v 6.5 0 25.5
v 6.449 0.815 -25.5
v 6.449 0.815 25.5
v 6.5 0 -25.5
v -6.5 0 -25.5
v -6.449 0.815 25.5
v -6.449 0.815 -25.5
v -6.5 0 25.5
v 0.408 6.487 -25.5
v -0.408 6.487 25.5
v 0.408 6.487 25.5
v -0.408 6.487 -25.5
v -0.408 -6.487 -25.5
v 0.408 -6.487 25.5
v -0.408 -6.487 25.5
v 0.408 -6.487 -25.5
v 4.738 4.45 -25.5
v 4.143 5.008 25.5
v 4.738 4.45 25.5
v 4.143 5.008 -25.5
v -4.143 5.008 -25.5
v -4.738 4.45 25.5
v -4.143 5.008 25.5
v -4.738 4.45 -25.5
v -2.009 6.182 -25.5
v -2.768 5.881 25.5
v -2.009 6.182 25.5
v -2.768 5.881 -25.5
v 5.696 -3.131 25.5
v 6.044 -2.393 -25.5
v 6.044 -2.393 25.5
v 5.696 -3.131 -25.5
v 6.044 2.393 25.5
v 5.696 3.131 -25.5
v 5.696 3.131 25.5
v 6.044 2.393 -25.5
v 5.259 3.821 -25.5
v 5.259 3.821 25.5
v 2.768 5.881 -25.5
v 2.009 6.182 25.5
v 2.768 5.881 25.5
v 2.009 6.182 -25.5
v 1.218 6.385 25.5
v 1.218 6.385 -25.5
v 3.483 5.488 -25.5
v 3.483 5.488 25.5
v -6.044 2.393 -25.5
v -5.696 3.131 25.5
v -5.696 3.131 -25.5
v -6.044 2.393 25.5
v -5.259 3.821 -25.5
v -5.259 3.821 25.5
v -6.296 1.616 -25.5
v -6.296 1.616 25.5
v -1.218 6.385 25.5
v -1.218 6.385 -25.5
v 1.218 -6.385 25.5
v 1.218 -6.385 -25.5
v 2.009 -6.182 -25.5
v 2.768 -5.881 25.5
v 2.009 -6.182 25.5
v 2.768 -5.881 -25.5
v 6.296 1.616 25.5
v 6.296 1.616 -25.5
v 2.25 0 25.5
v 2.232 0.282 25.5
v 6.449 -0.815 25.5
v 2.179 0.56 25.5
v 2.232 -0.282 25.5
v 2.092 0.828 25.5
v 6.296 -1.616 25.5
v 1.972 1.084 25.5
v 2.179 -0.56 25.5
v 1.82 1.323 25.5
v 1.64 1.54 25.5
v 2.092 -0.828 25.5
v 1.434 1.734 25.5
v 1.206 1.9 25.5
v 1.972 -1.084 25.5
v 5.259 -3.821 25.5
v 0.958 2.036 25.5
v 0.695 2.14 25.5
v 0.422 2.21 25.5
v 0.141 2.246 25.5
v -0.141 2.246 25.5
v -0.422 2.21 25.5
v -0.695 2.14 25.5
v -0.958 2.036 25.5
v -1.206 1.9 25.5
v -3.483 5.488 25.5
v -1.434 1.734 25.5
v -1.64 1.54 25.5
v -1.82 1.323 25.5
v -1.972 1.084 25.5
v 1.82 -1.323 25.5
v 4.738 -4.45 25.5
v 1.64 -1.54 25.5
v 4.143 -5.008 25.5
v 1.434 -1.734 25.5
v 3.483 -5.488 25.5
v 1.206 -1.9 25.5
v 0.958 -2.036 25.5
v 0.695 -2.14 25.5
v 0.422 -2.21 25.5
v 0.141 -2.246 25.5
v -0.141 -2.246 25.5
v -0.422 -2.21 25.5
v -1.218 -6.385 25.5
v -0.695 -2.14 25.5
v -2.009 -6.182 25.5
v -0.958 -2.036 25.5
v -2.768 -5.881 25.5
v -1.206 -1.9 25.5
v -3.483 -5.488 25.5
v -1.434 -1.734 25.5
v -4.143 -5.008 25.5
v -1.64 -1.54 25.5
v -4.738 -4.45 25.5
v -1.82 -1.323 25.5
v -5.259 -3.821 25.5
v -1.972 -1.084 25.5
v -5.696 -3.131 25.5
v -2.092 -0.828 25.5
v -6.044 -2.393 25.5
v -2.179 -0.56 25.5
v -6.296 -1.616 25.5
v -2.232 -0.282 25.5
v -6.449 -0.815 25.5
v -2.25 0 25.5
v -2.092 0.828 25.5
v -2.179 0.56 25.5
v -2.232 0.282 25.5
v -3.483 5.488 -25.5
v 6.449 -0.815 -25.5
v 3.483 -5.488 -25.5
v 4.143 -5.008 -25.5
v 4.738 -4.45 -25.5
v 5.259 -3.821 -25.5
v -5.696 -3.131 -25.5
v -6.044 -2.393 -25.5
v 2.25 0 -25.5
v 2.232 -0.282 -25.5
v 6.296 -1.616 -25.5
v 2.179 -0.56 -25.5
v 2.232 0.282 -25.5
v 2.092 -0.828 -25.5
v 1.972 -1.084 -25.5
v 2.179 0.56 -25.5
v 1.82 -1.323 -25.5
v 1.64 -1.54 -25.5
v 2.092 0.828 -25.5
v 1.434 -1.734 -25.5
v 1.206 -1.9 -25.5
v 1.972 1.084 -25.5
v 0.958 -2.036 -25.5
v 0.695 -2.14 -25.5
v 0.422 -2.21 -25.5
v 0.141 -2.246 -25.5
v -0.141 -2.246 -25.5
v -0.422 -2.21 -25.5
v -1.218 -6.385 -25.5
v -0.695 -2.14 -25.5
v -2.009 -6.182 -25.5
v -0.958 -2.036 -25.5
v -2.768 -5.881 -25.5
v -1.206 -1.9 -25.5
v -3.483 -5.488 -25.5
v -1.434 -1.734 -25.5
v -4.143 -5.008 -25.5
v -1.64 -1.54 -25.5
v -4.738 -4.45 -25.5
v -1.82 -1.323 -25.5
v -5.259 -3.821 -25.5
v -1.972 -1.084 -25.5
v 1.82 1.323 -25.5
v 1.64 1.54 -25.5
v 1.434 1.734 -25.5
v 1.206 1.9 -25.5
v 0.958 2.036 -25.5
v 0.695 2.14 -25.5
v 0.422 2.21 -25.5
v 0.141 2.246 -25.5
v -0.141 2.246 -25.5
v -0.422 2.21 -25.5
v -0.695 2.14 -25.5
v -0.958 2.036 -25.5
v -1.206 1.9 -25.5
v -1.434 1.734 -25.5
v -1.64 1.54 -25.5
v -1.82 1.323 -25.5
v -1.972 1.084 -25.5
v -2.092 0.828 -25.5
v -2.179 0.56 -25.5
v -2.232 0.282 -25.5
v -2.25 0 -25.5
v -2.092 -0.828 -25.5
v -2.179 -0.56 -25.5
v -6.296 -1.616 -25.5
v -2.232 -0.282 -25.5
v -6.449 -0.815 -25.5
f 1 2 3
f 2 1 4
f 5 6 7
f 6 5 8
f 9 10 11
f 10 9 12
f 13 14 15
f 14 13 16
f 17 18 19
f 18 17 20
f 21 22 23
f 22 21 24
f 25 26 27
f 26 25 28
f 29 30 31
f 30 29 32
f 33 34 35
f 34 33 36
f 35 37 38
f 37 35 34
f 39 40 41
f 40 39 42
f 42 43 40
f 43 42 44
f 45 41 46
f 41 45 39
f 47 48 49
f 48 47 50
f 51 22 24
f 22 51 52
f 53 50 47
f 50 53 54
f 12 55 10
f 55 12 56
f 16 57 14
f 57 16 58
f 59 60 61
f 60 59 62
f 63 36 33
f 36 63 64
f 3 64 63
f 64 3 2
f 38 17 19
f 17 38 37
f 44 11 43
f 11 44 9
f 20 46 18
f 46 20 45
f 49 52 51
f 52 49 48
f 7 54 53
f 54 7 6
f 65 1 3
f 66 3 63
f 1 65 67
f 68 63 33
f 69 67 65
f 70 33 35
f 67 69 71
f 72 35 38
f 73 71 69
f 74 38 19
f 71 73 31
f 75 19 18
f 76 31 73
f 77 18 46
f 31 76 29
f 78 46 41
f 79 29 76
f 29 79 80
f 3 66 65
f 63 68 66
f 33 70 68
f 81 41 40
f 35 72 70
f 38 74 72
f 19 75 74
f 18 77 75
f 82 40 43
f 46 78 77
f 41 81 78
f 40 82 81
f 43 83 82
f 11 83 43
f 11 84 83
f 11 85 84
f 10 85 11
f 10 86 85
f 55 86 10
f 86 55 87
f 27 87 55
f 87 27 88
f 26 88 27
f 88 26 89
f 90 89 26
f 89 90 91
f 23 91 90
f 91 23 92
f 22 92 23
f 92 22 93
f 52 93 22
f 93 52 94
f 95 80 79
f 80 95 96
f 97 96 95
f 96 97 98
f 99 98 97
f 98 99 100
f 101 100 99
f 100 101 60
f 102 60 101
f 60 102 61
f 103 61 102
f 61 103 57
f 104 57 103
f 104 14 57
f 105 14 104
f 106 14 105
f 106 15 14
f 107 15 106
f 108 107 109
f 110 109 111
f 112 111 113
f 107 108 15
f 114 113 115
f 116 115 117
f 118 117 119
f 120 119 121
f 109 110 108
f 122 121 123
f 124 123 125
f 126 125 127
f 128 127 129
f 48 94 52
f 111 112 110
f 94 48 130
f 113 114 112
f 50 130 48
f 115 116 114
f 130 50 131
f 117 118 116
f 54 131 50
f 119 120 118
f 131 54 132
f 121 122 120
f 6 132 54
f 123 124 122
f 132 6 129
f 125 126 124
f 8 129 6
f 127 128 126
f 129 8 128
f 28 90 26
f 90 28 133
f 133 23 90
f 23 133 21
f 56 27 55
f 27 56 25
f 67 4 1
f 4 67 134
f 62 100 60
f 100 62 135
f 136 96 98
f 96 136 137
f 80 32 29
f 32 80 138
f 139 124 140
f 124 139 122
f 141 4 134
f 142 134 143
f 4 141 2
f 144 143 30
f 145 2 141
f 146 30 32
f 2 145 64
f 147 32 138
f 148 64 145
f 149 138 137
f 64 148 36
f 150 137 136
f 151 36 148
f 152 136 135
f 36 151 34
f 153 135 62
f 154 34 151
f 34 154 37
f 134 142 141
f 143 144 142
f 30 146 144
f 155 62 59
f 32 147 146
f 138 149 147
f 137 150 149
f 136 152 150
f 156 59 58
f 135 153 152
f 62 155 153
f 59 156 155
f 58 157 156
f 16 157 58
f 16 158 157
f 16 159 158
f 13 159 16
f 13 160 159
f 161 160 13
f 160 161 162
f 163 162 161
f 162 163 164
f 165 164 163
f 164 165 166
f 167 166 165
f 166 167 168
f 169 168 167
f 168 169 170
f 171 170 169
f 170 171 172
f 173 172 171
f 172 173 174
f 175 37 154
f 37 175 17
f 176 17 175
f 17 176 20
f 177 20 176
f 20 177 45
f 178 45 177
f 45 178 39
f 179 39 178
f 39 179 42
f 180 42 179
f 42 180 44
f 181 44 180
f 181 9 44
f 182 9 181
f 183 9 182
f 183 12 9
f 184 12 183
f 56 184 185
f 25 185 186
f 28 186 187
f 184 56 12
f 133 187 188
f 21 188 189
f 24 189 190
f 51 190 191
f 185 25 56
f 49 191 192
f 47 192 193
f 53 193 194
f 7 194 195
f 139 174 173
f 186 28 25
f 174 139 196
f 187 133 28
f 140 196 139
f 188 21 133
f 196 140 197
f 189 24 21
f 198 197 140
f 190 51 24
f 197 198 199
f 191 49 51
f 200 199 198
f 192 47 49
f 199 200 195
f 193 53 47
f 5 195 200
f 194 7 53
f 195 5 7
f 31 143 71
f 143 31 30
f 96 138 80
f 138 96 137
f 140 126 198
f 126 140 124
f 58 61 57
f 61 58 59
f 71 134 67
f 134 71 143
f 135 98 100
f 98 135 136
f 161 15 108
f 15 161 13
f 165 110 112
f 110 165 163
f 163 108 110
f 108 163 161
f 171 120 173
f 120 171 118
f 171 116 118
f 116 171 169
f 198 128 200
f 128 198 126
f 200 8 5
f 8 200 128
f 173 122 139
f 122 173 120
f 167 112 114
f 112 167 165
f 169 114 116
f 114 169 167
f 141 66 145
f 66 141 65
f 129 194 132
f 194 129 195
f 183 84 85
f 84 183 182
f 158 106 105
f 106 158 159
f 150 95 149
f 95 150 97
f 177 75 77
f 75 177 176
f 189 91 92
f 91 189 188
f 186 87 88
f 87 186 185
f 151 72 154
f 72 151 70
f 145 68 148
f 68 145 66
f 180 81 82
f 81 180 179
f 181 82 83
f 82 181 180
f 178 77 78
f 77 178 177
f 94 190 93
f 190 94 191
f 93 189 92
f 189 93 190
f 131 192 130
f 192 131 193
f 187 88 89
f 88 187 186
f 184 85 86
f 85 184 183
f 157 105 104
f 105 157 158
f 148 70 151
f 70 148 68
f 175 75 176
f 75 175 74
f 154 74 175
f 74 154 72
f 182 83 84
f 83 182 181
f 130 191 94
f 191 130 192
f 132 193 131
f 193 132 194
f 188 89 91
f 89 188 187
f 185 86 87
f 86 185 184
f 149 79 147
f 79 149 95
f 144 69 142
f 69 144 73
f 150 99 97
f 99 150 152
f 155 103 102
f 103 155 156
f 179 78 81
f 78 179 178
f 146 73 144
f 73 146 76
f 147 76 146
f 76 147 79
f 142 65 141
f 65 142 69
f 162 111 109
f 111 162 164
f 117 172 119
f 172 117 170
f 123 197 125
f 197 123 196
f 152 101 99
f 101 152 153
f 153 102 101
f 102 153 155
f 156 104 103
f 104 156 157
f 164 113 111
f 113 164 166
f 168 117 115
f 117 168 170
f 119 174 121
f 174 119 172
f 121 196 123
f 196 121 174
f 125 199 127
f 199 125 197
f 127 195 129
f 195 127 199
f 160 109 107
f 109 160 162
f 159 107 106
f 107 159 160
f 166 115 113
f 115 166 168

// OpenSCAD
$fn = 50;


difference() {
	union() {
		translate(v = [0, 0, -25.5000000000]) {
			cylinder(h = 51, r = 6.5000000000);
		}
	}
	union() {
		translate(v = [0, 0, -100.0000000000]) {
			cylinder(h = 200, r = 2.2500000000);
		}
	}
}
